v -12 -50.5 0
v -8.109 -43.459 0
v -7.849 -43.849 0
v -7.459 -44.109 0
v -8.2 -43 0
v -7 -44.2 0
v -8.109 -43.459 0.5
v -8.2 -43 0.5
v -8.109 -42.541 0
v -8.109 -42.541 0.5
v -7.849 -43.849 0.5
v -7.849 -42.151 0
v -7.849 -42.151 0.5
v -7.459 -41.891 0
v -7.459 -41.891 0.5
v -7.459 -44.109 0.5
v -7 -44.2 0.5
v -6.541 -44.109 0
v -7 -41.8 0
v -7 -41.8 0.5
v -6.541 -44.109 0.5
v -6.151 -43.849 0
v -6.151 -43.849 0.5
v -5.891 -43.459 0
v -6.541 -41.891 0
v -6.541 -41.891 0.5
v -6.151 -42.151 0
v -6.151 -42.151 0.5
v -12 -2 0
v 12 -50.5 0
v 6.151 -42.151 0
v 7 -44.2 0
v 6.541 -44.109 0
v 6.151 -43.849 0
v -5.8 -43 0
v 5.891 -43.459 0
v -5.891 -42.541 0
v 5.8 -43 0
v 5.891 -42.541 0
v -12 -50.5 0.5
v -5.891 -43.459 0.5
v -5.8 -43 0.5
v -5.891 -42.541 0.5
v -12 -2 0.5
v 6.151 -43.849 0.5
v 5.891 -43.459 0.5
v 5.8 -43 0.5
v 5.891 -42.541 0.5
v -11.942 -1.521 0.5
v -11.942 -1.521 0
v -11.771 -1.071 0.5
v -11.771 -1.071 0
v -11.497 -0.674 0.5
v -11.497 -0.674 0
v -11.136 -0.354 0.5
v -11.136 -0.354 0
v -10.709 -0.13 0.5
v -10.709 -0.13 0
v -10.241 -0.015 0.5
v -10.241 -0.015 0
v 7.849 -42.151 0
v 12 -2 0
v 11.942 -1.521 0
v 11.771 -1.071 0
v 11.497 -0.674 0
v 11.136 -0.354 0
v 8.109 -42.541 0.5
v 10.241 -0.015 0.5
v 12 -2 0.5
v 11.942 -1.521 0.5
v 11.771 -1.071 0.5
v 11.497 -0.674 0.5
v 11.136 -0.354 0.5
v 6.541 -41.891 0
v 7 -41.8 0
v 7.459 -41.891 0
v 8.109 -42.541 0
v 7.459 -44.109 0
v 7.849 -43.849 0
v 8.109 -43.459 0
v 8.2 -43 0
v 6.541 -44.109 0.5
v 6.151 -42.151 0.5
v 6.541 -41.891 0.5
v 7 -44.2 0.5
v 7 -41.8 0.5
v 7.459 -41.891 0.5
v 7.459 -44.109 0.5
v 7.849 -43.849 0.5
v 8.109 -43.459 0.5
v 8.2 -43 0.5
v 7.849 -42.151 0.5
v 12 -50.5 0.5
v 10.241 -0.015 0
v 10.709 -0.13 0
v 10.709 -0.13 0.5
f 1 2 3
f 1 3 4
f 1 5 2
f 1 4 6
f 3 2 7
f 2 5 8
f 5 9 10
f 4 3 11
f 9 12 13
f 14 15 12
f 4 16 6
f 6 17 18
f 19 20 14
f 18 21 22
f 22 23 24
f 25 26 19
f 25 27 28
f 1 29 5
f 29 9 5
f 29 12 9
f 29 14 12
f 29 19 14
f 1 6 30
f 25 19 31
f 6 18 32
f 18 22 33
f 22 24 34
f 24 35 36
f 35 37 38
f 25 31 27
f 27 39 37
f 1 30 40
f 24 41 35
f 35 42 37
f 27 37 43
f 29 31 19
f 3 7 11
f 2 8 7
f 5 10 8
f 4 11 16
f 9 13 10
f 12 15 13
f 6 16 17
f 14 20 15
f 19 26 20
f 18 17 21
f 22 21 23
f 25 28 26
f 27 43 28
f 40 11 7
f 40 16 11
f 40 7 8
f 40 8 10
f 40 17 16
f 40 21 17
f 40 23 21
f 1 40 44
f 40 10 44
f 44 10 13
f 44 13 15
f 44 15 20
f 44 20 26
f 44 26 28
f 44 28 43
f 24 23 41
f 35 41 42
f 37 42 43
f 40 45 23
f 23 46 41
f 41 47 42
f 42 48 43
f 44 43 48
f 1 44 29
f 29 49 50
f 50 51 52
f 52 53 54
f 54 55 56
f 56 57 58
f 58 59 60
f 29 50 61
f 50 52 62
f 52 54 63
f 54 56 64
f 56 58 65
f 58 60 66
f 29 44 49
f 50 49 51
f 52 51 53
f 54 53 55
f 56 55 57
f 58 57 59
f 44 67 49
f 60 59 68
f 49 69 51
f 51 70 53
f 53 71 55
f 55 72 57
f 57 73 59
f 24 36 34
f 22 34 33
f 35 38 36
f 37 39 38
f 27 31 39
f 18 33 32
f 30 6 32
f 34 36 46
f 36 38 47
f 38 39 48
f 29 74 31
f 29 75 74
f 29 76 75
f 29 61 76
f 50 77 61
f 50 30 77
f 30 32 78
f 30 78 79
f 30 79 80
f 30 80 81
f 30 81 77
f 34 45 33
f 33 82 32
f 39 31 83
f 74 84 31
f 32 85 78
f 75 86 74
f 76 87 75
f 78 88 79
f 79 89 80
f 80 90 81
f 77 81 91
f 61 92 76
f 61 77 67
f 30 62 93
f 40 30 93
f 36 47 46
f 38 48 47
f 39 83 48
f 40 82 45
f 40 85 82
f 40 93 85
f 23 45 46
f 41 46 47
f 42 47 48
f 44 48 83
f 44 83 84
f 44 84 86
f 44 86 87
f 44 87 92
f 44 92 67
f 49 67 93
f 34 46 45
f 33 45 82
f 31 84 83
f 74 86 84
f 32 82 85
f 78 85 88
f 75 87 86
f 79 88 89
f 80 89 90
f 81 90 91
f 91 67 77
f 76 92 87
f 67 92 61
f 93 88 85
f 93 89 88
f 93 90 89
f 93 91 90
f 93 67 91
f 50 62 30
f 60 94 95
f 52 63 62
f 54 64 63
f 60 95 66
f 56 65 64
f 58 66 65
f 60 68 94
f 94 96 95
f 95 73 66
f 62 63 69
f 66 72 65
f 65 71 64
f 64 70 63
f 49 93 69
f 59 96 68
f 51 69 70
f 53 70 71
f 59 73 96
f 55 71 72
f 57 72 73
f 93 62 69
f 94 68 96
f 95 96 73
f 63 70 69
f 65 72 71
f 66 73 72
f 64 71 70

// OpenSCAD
// file: ../lib/lib.scad
// Shared helpers. Include AFTER params.scad (needs TOL, M3_* etc.).
$fa = 4; $fs = 0.5;

module rrect(size, r) {            // 2D rounded rectangle, centred
    r2 = min(r, min(size[0], size[1]) / 2 - 0.001);
    offset(r = r2) square([size[0] - 2 * r2, size[1] - 2 * r2], center = true);
}
module rbox(size, r, center_xy = true) {   // box with rounded vertical edges
    translate(center_xy ? [0, 0, 0] : [size[0] / 2, size[1] / 2, 0])
        linear_extrude(size[2]) rrect([size[0], size[1]], r);
}
module rbox_at(x0, x1, y0, y1, z0, z1, r = 0.01) {
    translate([(x0 + x1) / 2, (y0 + y1) / 2, z0]) rbox([x1 - x0, y1 - y0, z1 - z0], r);
}
module box_at(x0, x1, y0, y1, z0, z1) { translate([x0, y0, z0]) cube([x1 - x0, y1 - y0, z1 - z0]); }

module ring(ro, ri, h) { difference() { cylinder(r = ro, h = h); translate([0, 0, -1]) cylinder(r = ri, h = h + 2); } }
module ring_sector(ro, ri, h, a0, a1) {
    intersection() {
        ring(ro, ri, h);
        linear_extrude(h) polygon(concat([[0, 0]], [for (a = [a0 : (a1 - a0) / 24 : a1]) 2 * ro * [cos(a), sin(a)]]));
    }
}
// teardrop hole along an axis lying horizontal (axis = Y after rotation), printable w/o support
module teardrop2d(d) { union() { circle(d = d); rotate(45) square(d / 2); } }
// vertical heat-set insert hole, opening at z=0 going +z (depth l)
module insert_hole(l = M3_INSERT_L) { translate([0, 0, -EPS]) cylinder(d = M3_INSERT_D, h = l + EPS); }
module m3_clear(l) { translate([0, 0, -EPS]) cylinder(d = M3_CLEAR, h = l + 2 * EPS); }
module m3_csk(l) {  // countersunk clearance from z=0 upward, head at z=0 side
    translate([0, 0, -EPS]) { cylinder(d = M3_CLEAR, h = l + 2 * EPS); cylinder(d1 = 6.4, d2 = M3_CLEAR, h = 1.7); }
}
module card2d() { rrect([CARD_L, CARD_W], CARD_R); }
module card_at(cy, z) { translate([0, cy, z]) linear_extrude(CARD_T) card2d(); }

// ---- gears ----
function _inv(a) = tan(a) - a * PI_ / 180;           // involute function, a in deg
function _invpt(rb, r, ang0, s) = let(al = acos(rb / r), th = ang0 - s * (_inv(al) * 180 / PI_)) [r * cos(th), r * sin(th)];
module involute_gear2d(m, z, pa = 20, clearance = 0.05) {
    rp = m * z / 2; rb = rp * cos(pa); ra = rp + m - clearance; rf = rp - 1.25 * m;
    half = 90 / z + _inv(pa) * 180 / PI_;            // tooth half-angle at base (deg)
    n = 8;
    rs = [for (i = [0 : n]) max(rb, rf) + (ra - max(rb, rf)) * i / n];
    union() {
        circle(r = rf, $fn = z * 4);
        for (k = [0 : z - 1]) rotate(k * 360 / z) polygon(concat(
            [[rf * cos(-half), rf * sin(-half)]],
            [for (r = rs) let(p = _invpt(rb, r, half, 1)) [p[0], -p[1]]],
            [for (i = [n : -1 : 0]) _invpt(rb, rs[i], half, 1)],
            [[rf * cos(half), rf * sin(half)]]));
    }
}
// straight gear rack (2D in XY: teeth along +x, pointing -y, pitch line at y=0)
module gear_rack2d(m, len, back = 3) {
    p = PI_ * m; ad = m; de = 1.25 * m; t = tan(20);
    n = ceil(len / p) + 1;
    intersection() {
        union() {
            translate([0, de]) square([len, back]);
            for (i = [0 : n]) translate([i * p - p / 4, 0]) polygon([
                [-(p / 4 + de * t), de + 0.01], [p / 4 + de * t + 0.01, de + 0.01],
                [p / 4 - ad * t, -ad], [-(p / 4 - ad * t), -ad] ]);
        }
        translate([0, -ad - 1]) square([len, ad + de + back + 2]);
    }
}
// GT2 belt-tooth profile ring (teeth outward), 2D
module gt2_ring2d(n, r_land, ri) {
    union() {
        difference() { circle(r = r_land + 0.01, $fn = n * 2); circle(r = ri, $fn = n * 2); }
        for (k = [0 : n - 1]) rotate(k * 360 / n)
            translate([r_land, 0]) hull() { translate([-0.2, 0]) square([0.2, 1.0], center = true); translate([0.25, 0]) circle(r = 0.5, $fn = 12); }
    }
}
// main file
// Vendor model: 0.5 mm spring-steel pusher blade, BLADE_W x BLADE_L (cut from shim stock). Local: tip at y=0, extends -Y, z 0..0.5.
include <../params.scad>
include <../lib/lib.scad>
module vendor_pusher_blade() color([0.7,0.72,0.76]) difference() {
    translate([0, -BLADE_L, 0]) linear_extrude(BLADE_T) hull() { translate([-BLADE_W / 2, 0]) square([BLADE_W, 1]); for (x = [-1, 1]) translate([x * (BLADE_W / 2 - 2), BLADE_L - 2]) circle(r = 2); }
    for (x = [-7, 7]) translate([x, -BLADE_L + 7.5, -1]) cylinder(d = 2.4, h = 3);
}

vendor_pusher_blade();
